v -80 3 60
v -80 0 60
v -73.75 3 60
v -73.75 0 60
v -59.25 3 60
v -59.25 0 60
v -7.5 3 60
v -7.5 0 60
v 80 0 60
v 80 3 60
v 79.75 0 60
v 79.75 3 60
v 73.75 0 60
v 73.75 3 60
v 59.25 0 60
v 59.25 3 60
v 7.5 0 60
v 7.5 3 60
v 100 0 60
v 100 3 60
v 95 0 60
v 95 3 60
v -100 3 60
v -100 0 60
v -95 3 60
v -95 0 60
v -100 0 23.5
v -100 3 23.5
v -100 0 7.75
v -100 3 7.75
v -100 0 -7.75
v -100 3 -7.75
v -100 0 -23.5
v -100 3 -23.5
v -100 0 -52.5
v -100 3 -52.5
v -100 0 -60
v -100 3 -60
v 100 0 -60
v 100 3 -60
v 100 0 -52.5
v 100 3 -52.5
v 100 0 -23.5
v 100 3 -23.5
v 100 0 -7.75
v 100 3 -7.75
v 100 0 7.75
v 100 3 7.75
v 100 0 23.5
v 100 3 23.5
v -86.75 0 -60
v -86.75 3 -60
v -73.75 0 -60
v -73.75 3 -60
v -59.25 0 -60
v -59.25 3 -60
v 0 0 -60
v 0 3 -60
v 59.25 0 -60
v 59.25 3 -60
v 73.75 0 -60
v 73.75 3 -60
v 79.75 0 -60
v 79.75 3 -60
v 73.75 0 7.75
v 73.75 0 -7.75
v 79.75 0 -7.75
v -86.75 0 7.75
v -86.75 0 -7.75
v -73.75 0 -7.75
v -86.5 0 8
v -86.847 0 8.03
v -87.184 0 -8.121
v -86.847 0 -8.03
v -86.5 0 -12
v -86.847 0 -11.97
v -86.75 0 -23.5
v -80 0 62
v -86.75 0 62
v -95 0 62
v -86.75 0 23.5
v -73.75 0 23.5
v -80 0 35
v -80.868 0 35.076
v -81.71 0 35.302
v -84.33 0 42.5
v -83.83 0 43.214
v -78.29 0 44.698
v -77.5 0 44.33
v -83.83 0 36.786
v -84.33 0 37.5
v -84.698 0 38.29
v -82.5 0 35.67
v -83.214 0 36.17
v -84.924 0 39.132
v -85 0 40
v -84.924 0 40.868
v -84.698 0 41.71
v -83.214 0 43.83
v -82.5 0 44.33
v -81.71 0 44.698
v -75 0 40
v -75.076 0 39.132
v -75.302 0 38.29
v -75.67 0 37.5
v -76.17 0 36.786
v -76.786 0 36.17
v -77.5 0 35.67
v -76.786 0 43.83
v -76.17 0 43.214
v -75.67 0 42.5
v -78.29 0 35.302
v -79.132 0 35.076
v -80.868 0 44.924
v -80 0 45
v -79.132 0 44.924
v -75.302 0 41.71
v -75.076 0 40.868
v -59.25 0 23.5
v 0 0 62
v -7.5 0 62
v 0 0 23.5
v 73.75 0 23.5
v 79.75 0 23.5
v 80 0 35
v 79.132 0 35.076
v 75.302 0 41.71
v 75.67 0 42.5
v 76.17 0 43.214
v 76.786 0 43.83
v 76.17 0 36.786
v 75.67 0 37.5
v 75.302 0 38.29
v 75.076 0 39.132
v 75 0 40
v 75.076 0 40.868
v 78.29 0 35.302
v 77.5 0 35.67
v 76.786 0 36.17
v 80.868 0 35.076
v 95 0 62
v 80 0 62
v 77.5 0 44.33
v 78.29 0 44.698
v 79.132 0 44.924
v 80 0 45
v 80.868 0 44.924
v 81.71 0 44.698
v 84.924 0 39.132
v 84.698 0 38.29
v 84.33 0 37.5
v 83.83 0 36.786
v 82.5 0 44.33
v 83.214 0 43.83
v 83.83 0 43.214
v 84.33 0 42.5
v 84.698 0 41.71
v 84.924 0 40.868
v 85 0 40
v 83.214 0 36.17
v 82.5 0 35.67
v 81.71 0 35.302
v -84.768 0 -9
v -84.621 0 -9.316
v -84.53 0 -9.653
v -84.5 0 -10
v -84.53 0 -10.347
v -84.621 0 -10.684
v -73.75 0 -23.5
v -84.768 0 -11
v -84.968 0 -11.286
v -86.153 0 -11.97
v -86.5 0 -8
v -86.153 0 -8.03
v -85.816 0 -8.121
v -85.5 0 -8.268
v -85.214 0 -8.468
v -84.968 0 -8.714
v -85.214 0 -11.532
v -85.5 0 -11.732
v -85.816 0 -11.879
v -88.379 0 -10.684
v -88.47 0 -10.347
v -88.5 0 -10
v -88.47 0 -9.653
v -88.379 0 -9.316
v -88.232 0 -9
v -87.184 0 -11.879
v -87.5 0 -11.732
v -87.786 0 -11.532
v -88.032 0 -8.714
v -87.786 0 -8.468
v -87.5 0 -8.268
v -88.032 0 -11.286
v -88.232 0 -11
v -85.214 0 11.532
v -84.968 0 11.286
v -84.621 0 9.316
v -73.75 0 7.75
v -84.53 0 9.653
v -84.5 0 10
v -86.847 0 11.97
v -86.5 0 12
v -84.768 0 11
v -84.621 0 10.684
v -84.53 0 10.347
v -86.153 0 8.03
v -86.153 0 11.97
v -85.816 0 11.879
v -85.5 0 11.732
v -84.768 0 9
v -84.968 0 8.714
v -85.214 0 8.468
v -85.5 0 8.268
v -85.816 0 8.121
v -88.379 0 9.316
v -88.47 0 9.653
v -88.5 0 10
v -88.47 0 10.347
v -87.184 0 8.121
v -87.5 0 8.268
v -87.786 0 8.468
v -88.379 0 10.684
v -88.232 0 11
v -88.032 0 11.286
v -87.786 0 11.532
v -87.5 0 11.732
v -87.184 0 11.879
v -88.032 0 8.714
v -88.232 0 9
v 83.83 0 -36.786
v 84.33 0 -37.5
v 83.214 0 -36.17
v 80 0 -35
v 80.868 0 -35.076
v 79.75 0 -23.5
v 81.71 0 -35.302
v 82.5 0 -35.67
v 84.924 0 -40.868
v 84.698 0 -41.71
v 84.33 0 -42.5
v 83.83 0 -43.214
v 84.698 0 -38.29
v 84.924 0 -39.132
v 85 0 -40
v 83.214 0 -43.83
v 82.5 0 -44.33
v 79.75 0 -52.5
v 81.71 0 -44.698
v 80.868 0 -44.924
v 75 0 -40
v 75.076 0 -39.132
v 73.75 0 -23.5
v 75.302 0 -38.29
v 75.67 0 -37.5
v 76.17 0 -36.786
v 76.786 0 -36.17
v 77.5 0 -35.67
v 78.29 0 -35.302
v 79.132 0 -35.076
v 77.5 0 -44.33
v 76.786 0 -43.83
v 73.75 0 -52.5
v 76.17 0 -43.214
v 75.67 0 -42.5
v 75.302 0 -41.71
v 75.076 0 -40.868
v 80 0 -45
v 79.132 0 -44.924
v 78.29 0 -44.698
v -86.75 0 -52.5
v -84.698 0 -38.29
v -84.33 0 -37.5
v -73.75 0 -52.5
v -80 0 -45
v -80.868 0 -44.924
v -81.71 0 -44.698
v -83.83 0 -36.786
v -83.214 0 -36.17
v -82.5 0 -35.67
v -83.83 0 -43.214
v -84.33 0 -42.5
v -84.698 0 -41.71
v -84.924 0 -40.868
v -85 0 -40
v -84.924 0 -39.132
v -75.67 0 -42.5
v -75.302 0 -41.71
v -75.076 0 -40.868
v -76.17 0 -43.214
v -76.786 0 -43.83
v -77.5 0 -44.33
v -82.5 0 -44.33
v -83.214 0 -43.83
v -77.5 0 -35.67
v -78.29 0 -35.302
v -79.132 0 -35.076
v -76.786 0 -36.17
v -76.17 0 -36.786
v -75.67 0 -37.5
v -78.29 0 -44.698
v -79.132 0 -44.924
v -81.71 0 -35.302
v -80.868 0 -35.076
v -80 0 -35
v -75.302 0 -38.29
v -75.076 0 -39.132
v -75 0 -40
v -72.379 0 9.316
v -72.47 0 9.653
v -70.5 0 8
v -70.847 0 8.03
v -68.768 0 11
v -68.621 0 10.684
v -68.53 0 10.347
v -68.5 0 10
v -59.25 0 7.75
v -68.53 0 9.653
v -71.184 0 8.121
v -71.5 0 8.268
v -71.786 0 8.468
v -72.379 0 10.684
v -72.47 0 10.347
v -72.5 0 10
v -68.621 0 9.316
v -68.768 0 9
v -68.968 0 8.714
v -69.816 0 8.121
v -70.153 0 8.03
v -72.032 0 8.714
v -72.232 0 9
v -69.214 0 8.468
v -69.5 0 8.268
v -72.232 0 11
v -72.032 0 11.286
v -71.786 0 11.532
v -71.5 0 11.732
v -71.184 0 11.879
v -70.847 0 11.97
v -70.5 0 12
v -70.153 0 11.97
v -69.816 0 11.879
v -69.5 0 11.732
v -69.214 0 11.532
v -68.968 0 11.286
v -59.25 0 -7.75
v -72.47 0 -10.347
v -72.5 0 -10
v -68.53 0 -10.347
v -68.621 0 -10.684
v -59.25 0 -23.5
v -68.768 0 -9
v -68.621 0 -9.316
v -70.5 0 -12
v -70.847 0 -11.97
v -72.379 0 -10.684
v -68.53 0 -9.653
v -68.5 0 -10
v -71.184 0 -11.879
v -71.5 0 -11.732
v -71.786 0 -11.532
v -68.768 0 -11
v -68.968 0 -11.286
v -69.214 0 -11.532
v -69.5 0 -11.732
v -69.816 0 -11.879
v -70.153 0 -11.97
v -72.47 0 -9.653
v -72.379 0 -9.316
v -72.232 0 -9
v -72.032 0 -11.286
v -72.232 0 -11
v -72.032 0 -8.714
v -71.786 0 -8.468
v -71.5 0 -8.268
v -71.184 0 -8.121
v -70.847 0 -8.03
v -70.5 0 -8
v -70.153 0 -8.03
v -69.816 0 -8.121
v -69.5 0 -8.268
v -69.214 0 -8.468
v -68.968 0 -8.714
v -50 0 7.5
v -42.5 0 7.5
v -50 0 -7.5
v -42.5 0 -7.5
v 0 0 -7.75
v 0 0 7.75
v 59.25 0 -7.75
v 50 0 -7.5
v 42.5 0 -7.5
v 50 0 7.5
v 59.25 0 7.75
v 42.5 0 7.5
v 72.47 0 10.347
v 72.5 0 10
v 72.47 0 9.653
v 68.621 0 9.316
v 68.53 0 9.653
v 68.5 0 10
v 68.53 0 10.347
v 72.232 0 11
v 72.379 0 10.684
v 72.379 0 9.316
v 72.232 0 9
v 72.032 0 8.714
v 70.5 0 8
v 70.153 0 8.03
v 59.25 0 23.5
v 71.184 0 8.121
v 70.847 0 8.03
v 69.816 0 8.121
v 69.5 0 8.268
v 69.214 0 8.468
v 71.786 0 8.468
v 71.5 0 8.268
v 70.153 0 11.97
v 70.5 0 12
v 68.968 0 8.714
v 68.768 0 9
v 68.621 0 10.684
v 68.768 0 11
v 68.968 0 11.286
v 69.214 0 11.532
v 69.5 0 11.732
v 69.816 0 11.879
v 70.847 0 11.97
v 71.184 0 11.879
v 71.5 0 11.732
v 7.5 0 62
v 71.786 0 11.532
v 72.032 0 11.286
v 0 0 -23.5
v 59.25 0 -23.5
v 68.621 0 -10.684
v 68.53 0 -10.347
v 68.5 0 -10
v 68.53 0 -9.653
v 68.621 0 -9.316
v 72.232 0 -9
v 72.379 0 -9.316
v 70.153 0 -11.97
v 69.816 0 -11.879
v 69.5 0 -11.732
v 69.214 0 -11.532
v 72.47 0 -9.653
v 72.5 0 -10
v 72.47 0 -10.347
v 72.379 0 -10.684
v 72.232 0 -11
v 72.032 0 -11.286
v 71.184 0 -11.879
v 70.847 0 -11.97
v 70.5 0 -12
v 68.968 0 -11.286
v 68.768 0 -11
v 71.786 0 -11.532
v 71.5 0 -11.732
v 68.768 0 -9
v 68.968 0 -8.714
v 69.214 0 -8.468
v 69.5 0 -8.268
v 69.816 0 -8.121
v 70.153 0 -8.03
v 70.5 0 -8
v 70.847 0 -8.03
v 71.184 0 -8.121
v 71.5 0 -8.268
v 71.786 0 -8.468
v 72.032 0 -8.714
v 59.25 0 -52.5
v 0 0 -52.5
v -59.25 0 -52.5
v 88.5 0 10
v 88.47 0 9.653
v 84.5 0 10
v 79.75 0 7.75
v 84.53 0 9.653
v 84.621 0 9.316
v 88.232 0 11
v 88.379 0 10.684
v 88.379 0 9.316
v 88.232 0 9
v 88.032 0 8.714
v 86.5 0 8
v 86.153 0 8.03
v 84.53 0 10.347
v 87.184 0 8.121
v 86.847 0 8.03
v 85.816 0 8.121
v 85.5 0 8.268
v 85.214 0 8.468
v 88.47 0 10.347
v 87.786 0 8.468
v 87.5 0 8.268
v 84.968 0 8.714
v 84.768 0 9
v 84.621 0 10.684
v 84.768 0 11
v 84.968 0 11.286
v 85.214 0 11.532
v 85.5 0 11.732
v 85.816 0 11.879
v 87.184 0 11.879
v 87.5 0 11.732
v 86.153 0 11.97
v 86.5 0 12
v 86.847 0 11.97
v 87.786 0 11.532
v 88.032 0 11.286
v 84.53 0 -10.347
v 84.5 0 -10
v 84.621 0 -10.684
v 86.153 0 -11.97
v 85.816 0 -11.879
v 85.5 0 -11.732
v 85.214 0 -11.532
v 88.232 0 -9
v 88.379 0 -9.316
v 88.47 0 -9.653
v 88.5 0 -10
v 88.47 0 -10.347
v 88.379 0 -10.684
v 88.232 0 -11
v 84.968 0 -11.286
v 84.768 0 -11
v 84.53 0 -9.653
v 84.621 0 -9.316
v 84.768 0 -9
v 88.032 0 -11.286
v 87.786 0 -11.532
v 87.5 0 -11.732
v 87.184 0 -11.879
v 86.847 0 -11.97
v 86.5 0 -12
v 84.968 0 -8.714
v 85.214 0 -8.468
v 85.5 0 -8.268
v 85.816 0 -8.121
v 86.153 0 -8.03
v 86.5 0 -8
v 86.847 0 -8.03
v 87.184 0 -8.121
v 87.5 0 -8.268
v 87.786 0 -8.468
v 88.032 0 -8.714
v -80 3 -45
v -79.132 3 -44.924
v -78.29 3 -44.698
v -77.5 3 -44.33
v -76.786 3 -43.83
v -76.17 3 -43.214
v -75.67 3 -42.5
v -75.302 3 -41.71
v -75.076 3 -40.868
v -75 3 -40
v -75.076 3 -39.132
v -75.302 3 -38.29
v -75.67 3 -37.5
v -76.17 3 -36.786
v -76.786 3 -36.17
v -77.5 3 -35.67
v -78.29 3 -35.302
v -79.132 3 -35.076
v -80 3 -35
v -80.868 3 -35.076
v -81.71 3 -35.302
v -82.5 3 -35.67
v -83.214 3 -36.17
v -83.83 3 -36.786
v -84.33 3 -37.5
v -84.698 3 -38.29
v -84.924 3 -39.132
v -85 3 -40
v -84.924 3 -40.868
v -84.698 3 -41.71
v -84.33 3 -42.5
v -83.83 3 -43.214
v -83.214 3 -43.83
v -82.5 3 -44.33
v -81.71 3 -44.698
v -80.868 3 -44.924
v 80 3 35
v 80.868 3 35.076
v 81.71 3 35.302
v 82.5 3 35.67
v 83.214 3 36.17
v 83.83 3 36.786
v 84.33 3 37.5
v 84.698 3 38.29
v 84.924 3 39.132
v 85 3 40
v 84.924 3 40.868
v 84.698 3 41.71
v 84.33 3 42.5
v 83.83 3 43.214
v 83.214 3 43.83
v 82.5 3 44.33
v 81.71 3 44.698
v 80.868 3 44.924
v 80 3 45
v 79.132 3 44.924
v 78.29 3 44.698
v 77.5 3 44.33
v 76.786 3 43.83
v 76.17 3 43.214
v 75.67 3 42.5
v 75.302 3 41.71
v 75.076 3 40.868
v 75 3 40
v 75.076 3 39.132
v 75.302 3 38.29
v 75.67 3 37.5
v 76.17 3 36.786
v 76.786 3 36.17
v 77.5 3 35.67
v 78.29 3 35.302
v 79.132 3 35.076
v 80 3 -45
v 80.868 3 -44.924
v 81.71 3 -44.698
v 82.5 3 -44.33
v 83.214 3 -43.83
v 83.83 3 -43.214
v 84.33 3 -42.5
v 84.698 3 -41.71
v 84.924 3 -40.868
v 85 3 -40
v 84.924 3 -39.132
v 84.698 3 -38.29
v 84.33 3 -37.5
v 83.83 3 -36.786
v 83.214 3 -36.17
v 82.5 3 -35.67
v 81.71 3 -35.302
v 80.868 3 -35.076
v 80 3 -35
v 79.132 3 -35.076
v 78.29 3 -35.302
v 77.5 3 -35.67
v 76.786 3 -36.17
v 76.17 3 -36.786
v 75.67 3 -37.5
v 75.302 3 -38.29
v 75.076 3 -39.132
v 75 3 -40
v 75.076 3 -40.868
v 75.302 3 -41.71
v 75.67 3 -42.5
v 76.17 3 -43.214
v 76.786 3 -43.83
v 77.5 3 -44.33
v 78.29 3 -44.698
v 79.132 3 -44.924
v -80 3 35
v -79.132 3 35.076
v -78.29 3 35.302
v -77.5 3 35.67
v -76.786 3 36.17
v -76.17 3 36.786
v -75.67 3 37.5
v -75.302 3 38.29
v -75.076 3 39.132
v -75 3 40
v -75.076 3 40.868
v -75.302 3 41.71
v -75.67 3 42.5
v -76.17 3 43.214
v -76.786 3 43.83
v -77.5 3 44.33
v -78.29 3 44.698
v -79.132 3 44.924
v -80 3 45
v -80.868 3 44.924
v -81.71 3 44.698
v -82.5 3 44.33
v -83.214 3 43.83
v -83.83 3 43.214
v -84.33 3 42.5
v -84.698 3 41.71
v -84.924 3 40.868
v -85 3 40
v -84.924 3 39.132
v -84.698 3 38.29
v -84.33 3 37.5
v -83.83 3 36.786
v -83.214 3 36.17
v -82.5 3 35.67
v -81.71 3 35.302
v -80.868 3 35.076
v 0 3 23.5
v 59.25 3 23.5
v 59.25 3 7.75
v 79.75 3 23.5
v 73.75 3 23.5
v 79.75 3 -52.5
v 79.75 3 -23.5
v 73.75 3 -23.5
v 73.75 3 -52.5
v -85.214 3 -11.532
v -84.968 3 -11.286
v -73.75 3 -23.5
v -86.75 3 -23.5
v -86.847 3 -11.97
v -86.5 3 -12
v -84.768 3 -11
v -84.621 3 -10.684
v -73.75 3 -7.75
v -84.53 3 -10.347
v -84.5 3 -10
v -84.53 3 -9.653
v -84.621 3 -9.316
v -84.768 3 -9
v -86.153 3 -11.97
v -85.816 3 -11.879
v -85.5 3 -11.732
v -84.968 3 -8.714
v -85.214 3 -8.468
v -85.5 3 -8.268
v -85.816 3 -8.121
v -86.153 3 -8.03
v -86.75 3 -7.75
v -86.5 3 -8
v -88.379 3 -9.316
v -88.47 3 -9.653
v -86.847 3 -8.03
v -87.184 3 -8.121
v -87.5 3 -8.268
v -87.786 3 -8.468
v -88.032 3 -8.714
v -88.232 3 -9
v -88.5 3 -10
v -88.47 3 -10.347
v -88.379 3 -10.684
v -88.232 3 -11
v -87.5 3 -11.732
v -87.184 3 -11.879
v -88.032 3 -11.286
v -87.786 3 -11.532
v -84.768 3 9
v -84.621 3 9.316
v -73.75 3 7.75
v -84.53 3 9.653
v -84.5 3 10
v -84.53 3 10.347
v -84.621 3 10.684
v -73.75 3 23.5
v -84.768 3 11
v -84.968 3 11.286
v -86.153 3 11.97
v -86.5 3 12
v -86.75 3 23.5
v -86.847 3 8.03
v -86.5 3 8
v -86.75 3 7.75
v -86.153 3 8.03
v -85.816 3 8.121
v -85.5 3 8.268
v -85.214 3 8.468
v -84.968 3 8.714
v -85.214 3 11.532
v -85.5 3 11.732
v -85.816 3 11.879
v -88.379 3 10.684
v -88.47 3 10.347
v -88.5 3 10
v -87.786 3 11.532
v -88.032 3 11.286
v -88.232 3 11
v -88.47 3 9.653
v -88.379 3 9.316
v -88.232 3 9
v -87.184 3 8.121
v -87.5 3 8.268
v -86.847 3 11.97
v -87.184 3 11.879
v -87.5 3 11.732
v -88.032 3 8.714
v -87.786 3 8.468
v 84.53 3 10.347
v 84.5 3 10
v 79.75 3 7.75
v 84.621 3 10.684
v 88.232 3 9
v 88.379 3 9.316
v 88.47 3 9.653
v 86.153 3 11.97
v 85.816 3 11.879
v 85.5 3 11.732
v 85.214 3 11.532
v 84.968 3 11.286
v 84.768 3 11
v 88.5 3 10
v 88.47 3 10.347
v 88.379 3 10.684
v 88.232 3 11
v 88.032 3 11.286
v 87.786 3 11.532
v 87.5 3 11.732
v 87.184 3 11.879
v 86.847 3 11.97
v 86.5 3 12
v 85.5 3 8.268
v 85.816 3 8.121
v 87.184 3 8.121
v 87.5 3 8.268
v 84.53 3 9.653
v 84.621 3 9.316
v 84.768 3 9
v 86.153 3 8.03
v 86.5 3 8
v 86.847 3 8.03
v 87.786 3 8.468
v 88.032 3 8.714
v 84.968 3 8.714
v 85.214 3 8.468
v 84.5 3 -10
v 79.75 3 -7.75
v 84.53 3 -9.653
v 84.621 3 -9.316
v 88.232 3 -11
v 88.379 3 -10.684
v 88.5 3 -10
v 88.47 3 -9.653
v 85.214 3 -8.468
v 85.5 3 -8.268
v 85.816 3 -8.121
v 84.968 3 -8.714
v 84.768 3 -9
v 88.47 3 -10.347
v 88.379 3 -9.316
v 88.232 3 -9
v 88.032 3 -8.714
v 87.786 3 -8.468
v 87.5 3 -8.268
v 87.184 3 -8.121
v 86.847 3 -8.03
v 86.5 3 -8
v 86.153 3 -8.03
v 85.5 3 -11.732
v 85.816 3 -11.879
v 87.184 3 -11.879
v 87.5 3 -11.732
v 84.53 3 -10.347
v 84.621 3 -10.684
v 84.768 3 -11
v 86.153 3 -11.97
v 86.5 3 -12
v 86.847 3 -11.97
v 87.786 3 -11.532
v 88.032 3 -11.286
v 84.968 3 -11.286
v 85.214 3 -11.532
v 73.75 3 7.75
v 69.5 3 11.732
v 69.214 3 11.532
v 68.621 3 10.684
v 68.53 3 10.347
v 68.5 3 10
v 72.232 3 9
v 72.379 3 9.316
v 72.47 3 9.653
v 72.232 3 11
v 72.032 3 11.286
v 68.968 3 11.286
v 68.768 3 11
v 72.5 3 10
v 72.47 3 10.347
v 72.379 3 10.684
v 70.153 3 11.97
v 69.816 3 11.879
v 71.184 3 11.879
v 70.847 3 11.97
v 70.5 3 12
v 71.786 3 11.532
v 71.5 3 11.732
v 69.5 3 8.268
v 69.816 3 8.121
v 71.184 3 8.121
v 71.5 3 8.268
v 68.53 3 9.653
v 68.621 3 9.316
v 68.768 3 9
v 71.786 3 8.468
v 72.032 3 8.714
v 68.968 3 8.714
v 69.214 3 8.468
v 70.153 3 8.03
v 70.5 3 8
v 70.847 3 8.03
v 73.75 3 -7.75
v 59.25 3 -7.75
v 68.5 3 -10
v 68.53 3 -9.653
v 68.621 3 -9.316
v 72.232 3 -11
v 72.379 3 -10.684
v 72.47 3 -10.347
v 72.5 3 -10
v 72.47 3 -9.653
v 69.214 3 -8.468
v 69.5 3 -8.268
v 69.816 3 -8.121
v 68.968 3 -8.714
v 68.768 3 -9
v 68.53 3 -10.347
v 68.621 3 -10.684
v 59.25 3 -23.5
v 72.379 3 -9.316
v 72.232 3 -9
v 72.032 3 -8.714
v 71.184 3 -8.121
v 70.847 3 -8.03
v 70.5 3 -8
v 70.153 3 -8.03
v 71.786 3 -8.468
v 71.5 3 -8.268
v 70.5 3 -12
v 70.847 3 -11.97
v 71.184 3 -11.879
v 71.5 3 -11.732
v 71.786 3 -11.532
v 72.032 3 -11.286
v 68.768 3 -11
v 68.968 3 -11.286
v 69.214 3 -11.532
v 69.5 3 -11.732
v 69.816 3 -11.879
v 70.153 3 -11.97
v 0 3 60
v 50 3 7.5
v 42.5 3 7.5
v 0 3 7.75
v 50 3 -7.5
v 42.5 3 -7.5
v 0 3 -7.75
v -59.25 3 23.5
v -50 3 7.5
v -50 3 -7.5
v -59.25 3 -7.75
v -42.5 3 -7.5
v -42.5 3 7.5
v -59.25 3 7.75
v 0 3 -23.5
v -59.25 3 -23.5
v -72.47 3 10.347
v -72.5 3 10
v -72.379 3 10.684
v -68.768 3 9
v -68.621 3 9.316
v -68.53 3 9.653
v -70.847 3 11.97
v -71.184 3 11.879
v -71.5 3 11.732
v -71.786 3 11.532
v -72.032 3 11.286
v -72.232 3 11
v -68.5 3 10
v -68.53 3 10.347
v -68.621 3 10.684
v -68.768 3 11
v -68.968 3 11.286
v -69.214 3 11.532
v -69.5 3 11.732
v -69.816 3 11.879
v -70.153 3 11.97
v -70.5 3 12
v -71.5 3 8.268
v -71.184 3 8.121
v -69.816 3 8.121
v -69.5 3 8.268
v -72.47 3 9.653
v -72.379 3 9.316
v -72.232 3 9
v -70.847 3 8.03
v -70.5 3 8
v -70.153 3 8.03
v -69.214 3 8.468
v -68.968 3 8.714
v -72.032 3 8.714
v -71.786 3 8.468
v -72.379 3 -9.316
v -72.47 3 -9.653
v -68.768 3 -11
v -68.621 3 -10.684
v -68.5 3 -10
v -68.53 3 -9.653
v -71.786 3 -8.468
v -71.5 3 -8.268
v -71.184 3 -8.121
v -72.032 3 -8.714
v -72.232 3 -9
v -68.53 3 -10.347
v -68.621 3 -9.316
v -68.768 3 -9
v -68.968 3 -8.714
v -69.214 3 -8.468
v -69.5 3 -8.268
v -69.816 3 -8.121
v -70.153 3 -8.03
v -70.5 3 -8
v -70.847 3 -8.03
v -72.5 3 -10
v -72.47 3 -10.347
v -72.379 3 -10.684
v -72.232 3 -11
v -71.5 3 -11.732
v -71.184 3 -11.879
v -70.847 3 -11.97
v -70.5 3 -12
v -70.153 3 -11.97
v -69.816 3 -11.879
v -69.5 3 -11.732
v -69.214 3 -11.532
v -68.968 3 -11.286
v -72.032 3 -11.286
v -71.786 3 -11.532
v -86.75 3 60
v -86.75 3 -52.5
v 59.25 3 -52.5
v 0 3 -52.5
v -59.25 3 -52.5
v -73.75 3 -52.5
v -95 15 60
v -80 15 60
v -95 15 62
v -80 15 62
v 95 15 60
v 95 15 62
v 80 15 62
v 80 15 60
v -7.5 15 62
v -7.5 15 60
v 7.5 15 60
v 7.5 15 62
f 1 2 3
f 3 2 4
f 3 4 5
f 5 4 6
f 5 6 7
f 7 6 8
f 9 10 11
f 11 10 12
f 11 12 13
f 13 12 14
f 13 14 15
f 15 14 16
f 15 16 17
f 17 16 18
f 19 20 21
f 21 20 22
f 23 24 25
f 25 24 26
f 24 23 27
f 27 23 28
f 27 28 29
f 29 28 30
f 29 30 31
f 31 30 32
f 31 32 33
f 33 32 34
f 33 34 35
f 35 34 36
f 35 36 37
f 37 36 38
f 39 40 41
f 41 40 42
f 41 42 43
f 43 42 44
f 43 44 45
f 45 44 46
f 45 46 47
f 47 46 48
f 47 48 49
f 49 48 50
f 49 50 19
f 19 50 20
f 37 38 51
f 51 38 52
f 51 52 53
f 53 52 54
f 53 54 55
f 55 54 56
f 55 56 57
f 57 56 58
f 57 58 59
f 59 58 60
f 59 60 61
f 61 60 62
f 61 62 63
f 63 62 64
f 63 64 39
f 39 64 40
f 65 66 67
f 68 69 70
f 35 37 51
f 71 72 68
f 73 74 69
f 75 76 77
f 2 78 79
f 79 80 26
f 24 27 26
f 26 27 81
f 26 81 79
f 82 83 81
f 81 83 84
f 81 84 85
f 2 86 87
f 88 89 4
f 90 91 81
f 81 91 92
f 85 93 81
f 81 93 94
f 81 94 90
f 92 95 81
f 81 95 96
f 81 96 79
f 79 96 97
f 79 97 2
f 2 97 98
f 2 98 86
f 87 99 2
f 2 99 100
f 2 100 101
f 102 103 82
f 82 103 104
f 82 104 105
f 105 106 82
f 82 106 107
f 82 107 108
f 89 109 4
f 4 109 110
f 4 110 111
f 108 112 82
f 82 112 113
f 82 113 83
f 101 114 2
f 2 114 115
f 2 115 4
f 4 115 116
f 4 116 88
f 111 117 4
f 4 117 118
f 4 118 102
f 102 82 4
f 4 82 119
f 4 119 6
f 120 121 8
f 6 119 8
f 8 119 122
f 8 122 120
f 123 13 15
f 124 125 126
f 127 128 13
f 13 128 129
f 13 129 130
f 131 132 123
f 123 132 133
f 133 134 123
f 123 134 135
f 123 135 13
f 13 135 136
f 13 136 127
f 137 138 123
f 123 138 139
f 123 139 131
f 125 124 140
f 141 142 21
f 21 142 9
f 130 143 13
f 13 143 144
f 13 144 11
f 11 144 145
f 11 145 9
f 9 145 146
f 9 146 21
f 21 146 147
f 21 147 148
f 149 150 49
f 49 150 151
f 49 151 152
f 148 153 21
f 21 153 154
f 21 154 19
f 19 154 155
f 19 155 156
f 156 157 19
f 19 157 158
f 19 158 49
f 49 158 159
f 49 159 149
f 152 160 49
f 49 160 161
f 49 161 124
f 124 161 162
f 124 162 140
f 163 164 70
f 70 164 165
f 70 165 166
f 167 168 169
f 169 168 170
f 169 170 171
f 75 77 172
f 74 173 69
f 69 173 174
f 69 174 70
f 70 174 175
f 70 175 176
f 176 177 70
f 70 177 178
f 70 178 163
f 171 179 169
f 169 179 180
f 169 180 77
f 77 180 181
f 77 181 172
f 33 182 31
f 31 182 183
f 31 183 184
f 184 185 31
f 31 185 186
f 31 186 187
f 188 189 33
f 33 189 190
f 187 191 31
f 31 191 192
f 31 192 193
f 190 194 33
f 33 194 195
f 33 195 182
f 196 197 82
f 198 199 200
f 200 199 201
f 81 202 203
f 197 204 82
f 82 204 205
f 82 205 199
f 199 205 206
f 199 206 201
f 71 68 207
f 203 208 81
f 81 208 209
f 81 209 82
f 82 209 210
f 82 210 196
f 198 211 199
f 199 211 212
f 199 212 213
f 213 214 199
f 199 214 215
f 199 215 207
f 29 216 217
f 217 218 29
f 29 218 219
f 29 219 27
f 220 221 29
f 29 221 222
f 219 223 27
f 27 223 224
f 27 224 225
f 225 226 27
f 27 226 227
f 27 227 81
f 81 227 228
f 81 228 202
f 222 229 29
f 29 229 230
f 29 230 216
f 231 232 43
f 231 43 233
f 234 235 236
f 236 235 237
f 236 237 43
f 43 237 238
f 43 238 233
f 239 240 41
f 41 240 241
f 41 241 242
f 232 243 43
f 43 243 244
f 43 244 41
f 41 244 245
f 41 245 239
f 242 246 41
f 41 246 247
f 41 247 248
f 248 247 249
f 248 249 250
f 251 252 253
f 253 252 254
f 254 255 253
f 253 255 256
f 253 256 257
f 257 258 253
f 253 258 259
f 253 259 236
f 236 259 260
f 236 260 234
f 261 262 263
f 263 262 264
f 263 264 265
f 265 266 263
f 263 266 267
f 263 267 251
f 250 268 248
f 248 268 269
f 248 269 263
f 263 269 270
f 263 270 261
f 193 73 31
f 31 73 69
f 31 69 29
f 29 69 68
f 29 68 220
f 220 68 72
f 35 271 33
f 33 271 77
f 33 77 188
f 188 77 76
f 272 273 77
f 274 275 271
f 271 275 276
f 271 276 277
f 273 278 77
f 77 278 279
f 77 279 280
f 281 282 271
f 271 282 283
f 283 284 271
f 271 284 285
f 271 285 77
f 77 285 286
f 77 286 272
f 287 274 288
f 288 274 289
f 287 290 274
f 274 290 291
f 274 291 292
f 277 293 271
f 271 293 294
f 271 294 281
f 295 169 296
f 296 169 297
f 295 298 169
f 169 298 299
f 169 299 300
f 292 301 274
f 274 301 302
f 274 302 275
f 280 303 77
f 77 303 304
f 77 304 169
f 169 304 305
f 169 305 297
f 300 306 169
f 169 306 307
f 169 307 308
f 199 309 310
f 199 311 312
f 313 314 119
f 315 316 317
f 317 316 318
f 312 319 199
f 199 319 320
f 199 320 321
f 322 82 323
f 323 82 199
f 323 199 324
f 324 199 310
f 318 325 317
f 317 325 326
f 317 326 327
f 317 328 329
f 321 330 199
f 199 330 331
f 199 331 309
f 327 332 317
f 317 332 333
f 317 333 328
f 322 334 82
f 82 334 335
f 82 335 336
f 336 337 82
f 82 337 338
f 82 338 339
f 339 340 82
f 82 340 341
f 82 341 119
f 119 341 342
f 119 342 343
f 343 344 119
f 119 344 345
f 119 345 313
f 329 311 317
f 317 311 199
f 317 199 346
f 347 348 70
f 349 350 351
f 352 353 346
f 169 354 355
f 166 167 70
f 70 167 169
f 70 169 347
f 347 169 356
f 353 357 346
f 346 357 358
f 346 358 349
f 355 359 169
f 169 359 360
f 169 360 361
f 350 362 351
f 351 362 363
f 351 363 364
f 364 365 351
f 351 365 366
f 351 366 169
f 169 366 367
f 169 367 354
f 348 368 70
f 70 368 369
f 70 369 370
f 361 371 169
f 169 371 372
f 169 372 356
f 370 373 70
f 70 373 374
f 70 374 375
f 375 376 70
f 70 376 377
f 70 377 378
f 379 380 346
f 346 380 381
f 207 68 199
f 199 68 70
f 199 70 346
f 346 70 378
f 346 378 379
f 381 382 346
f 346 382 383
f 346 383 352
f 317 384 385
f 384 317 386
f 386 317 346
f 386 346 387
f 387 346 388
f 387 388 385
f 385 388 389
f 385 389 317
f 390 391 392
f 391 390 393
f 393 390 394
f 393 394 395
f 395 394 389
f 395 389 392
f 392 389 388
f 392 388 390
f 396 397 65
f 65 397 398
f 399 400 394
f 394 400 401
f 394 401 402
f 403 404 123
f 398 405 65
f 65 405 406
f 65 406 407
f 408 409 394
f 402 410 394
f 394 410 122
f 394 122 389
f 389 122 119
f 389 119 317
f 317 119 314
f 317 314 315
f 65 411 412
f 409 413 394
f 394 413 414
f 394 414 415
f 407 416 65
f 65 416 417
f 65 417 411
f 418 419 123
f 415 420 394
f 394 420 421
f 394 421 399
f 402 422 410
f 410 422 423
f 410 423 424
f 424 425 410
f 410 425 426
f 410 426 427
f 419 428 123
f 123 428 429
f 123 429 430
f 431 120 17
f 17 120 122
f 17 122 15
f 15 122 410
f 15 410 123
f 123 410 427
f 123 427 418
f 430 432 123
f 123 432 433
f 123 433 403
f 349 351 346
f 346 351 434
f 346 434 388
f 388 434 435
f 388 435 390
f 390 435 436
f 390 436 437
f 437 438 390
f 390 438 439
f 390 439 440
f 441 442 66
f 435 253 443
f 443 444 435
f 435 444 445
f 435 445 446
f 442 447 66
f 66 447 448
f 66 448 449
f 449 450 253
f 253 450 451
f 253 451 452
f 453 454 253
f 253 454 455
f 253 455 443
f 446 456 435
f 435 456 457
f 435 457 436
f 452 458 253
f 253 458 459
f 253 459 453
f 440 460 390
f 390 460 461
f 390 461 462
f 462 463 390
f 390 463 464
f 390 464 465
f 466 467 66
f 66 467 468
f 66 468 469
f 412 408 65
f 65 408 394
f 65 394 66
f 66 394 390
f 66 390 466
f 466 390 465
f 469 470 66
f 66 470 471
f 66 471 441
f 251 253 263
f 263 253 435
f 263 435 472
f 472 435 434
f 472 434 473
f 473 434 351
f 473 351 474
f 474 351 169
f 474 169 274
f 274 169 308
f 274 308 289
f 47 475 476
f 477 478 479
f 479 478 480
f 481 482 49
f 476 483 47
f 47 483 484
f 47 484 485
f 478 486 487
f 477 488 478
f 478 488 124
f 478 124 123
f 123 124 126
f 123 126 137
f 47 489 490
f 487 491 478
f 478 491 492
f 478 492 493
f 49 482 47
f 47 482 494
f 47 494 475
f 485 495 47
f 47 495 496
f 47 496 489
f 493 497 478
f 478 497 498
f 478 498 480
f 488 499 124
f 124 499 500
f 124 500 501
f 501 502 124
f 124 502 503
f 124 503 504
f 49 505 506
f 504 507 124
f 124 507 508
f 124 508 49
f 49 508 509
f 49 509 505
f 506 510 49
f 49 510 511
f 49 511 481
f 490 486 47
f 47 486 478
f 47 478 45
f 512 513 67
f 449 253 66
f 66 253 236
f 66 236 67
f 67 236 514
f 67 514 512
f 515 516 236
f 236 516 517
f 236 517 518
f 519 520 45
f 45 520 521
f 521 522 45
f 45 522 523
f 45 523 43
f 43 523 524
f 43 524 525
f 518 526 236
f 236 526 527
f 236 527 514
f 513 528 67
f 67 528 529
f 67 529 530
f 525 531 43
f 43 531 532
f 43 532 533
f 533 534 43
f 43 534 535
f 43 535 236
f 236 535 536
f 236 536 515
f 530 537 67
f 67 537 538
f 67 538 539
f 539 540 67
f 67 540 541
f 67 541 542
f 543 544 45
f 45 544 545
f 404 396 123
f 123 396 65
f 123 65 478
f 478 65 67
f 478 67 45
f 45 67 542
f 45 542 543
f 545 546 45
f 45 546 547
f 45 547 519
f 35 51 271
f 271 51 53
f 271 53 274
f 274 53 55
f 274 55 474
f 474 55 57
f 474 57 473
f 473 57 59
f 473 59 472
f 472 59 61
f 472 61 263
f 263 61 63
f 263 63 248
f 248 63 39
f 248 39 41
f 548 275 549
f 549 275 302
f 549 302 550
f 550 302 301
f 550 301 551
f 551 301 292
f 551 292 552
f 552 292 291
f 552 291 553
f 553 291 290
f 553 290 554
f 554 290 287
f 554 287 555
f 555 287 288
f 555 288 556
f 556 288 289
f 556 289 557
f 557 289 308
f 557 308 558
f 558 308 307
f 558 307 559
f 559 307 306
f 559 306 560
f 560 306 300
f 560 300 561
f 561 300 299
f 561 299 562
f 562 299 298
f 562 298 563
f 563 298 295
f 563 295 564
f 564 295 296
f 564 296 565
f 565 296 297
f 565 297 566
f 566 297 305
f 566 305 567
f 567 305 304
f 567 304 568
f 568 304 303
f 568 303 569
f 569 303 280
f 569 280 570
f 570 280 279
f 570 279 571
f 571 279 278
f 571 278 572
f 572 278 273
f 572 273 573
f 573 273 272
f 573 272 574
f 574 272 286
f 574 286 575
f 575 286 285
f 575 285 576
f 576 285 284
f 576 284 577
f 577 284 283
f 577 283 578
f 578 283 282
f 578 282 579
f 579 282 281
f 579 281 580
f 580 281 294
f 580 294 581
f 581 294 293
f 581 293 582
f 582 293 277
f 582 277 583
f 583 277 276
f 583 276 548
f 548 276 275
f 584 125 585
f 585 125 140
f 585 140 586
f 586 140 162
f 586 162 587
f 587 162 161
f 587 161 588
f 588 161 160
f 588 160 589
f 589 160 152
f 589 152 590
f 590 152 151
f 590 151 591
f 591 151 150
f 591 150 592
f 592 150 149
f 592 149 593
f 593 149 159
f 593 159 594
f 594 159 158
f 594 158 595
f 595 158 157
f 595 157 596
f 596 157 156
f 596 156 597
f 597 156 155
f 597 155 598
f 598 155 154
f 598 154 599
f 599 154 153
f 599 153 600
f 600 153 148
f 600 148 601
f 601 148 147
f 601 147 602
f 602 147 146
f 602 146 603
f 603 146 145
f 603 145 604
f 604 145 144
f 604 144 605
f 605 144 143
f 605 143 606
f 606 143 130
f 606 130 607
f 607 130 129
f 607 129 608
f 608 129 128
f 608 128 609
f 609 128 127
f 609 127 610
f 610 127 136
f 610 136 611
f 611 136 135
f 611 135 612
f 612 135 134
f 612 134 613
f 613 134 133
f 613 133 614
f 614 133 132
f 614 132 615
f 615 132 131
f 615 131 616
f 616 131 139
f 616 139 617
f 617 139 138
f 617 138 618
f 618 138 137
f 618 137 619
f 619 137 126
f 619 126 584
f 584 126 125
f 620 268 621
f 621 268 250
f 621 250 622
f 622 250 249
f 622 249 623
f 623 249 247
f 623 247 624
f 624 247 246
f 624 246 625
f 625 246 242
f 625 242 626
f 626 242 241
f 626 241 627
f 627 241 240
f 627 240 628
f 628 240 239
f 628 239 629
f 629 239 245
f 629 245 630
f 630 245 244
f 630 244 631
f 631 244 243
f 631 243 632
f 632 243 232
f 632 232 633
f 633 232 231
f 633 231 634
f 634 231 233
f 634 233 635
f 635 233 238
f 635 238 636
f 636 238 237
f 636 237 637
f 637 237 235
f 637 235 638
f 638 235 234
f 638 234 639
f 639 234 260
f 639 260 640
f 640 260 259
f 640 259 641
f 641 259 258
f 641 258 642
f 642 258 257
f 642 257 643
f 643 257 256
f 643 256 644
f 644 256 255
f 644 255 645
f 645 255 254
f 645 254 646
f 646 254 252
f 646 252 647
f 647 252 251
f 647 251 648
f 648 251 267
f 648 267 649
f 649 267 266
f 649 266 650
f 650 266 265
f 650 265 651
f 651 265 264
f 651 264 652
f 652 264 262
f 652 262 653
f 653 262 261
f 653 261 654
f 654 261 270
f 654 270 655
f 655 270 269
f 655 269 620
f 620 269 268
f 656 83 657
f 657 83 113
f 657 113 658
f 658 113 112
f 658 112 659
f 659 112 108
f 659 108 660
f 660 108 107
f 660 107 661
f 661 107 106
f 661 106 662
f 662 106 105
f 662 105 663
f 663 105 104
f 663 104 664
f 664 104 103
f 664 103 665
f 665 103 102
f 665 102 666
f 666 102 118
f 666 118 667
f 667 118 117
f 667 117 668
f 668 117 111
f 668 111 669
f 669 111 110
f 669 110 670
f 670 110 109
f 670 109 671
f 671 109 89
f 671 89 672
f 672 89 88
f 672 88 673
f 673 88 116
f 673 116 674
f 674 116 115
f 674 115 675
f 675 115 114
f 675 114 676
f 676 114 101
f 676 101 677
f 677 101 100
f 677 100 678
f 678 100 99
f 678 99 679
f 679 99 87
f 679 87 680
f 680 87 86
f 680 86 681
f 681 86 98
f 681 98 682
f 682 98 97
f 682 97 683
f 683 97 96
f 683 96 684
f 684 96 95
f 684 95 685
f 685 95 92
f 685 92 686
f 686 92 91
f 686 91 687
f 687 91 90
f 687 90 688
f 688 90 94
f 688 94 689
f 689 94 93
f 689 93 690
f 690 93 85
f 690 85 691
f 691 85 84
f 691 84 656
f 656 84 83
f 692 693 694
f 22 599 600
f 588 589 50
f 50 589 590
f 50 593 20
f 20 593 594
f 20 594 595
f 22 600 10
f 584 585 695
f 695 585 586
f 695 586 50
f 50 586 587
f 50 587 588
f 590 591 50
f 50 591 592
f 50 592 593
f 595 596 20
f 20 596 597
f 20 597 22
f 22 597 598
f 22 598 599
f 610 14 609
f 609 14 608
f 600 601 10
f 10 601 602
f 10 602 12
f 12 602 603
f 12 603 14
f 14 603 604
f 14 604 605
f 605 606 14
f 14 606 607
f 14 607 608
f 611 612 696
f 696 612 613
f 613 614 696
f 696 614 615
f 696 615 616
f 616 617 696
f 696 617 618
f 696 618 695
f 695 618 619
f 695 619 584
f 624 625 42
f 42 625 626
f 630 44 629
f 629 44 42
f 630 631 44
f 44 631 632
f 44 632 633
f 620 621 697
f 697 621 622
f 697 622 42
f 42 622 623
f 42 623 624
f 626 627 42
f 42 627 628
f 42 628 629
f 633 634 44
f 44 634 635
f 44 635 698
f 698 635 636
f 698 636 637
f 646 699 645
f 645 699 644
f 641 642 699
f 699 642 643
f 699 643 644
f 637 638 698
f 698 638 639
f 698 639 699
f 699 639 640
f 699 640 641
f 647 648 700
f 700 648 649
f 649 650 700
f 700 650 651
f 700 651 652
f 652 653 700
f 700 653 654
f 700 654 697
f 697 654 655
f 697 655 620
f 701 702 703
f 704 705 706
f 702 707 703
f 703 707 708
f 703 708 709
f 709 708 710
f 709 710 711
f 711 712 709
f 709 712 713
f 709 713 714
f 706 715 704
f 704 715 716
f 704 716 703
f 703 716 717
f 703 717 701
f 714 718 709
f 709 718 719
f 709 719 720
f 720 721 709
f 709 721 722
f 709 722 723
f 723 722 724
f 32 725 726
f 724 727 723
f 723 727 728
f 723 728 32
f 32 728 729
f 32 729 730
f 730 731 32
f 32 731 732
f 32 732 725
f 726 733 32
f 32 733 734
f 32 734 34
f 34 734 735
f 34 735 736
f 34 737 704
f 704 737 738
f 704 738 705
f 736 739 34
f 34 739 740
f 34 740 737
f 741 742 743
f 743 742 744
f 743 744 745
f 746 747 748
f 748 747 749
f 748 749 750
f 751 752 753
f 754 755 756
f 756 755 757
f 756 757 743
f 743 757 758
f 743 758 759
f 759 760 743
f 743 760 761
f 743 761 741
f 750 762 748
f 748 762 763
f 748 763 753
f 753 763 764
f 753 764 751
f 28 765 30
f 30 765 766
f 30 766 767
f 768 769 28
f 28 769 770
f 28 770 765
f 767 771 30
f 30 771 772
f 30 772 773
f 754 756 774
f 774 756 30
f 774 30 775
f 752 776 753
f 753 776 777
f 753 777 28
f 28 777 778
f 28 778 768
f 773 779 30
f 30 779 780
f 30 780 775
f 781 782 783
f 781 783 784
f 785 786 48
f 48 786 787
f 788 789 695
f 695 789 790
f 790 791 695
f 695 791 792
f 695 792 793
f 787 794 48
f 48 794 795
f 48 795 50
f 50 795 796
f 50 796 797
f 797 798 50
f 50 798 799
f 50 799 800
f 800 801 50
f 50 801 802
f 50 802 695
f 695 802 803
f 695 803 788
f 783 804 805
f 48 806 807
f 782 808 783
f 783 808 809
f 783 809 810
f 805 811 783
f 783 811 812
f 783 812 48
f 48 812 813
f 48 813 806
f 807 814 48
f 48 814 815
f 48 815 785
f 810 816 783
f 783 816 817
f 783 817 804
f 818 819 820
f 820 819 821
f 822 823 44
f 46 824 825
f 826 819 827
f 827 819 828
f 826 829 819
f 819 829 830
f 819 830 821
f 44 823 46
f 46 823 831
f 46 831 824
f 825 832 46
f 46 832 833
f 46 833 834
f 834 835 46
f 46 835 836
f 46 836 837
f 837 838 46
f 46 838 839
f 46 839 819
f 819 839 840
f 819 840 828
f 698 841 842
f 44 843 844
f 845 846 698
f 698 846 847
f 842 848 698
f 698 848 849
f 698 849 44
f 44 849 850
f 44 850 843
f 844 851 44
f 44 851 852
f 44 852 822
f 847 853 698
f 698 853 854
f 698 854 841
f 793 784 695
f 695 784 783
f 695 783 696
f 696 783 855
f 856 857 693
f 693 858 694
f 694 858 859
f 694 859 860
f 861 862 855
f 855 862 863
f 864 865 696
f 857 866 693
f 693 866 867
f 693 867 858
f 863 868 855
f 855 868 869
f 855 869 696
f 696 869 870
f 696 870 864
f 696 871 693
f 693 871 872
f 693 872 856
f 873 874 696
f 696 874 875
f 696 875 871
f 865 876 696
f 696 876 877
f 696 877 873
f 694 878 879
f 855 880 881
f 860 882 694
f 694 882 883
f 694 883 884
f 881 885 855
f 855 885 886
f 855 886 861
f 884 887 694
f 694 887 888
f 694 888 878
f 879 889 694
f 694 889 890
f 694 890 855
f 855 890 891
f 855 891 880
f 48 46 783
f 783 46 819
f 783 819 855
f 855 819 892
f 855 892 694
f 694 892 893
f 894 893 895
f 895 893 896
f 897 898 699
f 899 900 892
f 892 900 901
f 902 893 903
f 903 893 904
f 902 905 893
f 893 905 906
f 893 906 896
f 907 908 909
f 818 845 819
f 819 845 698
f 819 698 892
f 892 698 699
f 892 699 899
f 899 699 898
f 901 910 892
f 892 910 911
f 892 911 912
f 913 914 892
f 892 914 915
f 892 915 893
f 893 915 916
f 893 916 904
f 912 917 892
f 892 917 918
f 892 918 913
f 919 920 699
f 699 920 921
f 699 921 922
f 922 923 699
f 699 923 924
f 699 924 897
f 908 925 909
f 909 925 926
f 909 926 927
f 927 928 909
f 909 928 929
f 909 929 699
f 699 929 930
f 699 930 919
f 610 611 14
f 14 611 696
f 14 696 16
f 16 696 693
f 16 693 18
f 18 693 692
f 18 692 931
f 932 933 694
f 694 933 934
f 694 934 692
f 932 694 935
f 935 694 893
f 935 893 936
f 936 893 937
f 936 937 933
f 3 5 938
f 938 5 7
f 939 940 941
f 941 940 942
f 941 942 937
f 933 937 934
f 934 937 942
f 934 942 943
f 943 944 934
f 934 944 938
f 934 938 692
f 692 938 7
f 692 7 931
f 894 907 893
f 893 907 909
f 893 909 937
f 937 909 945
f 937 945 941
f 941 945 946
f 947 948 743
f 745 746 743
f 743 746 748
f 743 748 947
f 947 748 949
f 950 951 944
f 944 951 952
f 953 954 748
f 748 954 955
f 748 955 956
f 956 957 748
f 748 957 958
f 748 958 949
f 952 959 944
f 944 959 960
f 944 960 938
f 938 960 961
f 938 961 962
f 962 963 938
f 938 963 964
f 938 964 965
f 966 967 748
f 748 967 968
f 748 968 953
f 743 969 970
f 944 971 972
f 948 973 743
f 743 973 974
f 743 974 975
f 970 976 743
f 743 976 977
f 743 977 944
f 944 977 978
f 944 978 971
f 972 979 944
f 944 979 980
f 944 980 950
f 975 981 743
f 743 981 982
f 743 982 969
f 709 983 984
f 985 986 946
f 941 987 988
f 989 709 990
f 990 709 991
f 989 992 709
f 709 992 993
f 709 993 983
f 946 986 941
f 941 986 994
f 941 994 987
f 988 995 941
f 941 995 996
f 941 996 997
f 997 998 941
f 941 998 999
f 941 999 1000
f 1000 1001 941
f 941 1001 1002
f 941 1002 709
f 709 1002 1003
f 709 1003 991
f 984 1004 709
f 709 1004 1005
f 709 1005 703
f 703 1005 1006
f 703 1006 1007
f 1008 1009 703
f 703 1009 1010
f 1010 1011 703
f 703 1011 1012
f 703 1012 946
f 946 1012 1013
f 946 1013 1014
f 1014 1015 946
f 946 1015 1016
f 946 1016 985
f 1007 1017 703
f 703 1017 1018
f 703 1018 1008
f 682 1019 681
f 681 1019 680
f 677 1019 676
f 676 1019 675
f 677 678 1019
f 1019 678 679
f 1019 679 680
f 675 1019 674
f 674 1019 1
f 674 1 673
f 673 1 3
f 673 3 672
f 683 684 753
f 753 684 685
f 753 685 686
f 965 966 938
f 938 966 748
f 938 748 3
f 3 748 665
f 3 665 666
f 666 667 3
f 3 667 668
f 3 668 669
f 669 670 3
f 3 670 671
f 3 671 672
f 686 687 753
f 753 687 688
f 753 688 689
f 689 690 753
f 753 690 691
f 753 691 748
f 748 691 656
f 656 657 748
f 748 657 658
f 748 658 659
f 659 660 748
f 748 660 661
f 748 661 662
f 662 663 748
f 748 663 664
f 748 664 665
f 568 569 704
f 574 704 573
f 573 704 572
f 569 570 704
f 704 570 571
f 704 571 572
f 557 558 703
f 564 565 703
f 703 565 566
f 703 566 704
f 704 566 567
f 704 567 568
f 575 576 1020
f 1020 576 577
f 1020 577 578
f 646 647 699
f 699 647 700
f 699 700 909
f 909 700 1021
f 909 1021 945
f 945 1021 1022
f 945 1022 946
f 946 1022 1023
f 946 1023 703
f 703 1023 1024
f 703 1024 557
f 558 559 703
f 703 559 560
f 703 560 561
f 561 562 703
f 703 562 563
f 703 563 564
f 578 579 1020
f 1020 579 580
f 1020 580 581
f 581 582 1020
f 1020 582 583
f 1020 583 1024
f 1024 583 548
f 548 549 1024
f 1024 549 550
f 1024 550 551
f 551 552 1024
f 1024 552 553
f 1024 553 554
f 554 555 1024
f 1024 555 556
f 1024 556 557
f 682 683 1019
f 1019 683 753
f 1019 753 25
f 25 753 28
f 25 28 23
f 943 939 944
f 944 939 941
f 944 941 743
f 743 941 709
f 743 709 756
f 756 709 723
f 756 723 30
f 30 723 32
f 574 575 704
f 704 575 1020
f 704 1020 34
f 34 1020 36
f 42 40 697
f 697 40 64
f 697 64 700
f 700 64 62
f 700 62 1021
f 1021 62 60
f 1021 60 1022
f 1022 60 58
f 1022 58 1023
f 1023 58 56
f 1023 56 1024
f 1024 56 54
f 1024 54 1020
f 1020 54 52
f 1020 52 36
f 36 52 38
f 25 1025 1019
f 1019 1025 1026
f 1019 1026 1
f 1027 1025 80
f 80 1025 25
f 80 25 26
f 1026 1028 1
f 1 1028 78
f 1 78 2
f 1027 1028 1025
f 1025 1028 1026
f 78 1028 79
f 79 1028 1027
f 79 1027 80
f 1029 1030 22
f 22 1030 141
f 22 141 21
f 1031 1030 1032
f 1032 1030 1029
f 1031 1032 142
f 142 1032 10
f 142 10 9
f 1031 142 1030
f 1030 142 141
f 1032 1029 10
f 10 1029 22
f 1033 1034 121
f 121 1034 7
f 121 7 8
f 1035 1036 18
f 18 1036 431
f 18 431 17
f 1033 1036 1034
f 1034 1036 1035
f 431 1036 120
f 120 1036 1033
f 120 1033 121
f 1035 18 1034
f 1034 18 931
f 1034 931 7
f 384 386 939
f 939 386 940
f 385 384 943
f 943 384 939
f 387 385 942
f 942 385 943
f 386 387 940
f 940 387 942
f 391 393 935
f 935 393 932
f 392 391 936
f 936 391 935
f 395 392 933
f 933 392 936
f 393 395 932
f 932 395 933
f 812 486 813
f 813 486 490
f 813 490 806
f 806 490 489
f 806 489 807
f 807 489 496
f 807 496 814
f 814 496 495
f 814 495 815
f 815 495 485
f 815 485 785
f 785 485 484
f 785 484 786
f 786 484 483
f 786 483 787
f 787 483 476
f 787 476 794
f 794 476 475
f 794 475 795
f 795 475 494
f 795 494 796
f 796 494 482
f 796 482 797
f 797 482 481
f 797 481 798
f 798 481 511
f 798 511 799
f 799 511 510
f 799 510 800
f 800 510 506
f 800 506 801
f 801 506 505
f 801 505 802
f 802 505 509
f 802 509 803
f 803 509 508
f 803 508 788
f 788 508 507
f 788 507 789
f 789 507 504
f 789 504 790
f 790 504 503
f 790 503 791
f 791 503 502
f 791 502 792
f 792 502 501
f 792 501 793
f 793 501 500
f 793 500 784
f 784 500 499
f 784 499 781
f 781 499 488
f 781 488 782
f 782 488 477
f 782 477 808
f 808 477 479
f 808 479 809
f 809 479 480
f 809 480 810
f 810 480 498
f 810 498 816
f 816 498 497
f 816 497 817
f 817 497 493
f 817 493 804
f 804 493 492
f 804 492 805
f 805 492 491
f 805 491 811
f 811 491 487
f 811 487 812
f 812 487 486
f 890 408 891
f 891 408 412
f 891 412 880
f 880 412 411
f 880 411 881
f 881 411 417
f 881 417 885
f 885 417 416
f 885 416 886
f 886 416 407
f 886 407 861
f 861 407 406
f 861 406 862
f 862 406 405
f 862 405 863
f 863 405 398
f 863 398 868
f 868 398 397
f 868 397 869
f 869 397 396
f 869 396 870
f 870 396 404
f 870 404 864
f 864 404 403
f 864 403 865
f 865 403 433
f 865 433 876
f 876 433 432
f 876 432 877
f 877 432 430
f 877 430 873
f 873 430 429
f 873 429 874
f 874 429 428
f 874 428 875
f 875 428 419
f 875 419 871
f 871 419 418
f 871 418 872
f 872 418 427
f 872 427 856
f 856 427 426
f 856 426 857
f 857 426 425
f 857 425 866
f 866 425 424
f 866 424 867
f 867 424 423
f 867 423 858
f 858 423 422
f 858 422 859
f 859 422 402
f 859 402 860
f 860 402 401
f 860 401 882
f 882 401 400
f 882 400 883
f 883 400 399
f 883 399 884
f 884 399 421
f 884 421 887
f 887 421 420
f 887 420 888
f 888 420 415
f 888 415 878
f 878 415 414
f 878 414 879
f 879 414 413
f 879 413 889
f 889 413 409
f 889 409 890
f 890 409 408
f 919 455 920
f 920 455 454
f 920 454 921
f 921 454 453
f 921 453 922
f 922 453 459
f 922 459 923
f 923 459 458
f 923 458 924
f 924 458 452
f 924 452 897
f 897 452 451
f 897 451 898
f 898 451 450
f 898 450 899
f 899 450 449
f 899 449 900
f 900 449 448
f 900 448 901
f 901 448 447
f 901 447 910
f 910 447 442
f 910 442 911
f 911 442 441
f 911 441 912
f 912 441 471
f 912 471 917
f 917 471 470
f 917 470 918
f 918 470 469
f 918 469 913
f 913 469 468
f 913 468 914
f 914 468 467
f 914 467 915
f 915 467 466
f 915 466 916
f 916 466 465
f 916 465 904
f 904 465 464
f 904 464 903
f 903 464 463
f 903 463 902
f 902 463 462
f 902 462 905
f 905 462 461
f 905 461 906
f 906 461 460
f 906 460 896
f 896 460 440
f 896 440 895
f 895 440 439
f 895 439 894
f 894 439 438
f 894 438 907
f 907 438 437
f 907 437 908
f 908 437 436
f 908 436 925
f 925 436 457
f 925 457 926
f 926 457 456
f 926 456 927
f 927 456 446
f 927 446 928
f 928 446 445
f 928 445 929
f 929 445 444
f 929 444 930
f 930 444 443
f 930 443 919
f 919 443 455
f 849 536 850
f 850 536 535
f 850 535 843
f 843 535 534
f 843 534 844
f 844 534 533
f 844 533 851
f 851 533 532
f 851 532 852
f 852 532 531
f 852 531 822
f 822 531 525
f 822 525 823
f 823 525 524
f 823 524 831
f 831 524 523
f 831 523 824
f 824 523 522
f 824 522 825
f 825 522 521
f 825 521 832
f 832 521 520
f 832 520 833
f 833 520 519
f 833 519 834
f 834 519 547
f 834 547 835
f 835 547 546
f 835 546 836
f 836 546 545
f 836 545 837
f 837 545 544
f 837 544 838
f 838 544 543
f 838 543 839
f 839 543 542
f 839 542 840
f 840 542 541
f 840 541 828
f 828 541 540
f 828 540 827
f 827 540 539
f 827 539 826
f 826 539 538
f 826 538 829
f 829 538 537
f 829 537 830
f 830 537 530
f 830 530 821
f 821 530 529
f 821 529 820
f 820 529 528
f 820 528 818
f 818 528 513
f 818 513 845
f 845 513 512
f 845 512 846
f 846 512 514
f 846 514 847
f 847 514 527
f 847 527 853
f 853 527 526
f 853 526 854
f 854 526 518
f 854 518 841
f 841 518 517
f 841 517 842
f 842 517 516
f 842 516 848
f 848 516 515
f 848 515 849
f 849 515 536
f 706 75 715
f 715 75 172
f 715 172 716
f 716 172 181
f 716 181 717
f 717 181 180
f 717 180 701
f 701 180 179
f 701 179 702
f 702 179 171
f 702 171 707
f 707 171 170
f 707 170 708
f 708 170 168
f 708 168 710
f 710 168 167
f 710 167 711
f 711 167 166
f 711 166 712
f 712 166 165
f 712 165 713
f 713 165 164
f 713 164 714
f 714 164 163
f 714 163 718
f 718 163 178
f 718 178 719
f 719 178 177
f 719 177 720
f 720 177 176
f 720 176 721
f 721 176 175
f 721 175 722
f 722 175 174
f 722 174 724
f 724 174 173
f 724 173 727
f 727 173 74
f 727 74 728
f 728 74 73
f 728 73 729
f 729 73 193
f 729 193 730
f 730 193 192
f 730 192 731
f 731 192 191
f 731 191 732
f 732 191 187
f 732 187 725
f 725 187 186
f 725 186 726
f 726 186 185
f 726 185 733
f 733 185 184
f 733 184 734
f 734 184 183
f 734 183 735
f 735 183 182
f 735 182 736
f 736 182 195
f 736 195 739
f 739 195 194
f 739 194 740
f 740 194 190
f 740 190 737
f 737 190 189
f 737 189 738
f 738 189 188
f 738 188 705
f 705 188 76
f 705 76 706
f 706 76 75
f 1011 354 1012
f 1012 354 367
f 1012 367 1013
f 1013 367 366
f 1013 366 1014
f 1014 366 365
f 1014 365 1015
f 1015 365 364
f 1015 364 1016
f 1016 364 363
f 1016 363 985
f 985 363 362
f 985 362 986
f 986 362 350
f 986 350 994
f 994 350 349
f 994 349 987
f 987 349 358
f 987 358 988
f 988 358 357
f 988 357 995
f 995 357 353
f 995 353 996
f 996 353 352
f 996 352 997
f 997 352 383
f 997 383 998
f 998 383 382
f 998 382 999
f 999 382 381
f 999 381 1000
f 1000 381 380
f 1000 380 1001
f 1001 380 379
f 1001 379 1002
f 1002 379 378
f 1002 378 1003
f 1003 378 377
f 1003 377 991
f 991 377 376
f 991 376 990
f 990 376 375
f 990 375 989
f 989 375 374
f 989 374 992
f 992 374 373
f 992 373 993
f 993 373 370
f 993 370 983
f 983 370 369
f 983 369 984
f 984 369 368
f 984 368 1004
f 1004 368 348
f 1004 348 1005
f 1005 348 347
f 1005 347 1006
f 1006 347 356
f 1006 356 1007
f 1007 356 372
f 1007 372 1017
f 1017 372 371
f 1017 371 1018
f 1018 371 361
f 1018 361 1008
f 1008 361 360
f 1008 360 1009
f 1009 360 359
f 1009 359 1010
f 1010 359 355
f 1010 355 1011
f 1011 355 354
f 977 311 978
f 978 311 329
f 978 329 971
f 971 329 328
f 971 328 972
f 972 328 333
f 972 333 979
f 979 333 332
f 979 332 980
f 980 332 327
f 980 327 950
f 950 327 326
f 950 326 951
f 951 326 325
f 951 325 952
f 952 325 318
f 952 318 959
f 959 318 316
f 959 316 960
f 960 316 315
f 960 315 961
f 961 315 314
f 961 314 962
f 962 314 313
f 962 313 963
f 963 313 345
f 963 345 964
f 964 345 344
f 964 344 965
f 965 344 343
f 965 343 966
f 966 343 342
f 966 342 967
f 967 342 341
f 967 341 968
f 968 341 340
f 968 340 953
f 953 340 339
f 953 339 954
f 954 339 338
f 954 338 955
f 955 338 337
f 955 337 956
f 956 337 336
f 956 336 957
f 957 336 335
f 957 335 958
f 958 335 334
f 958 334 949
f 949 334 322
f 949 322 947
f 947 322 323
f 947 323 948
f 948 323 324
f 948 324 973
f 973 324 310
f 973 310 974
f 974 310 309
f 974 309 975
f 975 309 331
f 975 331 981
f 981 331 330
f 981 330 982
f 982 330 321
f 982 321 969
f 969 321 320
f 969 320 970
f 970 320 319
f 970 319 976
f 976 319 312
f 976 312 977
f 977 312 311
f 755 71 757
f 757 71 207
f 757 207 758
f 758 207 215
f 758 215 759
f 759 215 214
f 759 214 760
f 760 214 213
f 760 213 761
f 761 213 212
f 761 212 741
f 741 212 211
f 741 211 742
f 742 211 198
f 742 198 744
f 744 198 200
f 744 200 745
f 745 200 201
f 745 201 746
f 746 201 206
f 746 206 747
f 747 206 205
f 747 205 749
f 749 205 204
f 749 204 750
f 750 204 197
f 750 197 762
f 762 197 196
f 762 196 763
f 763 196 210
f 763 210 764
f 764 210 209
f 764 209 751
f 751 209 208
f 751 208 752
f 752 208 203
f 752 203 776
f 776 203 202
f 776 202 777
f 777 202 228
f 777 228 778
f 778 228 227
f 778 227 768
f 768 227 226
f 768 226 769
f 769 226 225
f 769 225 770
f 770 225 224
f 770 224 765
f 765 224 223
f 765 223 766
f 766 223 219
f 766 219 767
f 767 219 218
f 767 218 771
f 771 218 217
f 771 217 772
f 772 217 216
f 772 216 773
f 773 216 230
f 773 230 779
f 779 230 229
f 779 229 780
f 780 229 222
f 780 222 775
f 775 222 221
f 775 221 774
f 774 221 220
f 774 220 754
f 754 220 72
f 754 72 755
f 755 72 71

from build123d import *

# Parameters (mm, degrees)
SKETCH1_W           = 200
SKETCH1_H           = 120
BOSS_EXTRUDE3_DEPTH = 1
SKETCH3_W           = 200
SKETCH3_H           = 120
SKETCH3_R           = 5
BOSS_EXTRUDE4_DEPTH = 2
SKETCH10_W          = 15
SKETCH10_H          = 15
BOSS_EXTRUDE6_DEPTH = 2
SKETCH12_R          = 2
SKETCH12_W          = 7.5
SKETCH12_H          = 15
CUT_EXTRUDE1_DEPTH  = 119.612815496
CUT_EXTRUDE2_START  = -10
SKETCH8_R           = 5
CUT_EXTRUDE2_DEPTH  = 10


with BuildPart() as part:
    # Sketch1 → Boss-Extrude3 (new body)
    with BuildSketch(Plane(origin=(0, 0, 0), x_dir=(1, 0, 0), z_dir=(0, 1, 0))):
        Rectangle(SKETCH1_W, SKETCH1_H)
    extrude(amount=BOSS_EXTRUDE3_DEPTH)

    # Sketch3 → Boss-Extrude4 (add)
    # profile 1 of 4: a face of its own
    with BuildSketch(Plane(origin=(0, 1, 0), x_dir=(1, 0, 0), z_dir=(0, 1, 0))):
        Rectangle(SKETCH3_W, SKETCH3_H)
        with Locations(Location((-80, -40, 0), (0, 0, 270))):
            Circle(SKETCH3_R, mode=Mode.SUBTRACT)
        with Locations(Location((80, -40, 0), (0, 0, 270))):
            Circle(SKETCH3_R, mode=Mode.SUBTRACT)
        with Locations(Location((-80, 40, 0), (0, 0, 270))):
            Circle(SKETCH3_R, mode=Mode.SUBTRACT)
        with Locations(Location((80, 40, 0), (0, 0, 270))):
            Circle(SKETCH3_R, mode=Mode.SUBTRACT)
    # profile 2 of 4: a face of its own
    with BuildSketch(Plane(origin=(0, 1, 0), x_dir=(1, 0, 0), z_dir=(0, 1, 0))):
        Rectangle(SKETCH3_W, SKETCH3_H)
        with Locations(Location((-80, -40, 0), (0, 0, 270))):
            Circle(SKETCH3_R, mode=Mode.SUBTRACT)
        with Locations(Location((80, -40, 0), (0, 0, 270))):
            Circle(SKETCH3_R, mode=Mode.SUBTRACT)
        with Locations(Location((-80, 40, 0), (0, 0, 270))):
            Circle(SKETCH3_R, mode=Mode.SUBTRACT)
        with Locations(Location((80, 40, 0), (0, 0, 270))):
            Circle(SKETCH3_R, mode=Mode.SUBTRACT)
    # profile 3 of 4: a face of its own
    with BuildSketch(Plane(origin=(0, 1, 0), x_dir=(1, 0, 0), z_dir=(0, 1, 0))):
        Rectangle(SKETCH3_W, SKETCH3_H)
        with Locations(Location((-80, -40, 0), (0, 0, 270))):
            Circle(SKETCH3_R, mode=Mode.SUBTRACT)
        with Locations(Location((80, -40, 0), (0, 0, 270))):
            Circle(SKETCH3_R, mode=Mode.SUBTRACT)
        with Locations(Location((-80, 40, 0), (0, 0, 270))):
            Circle(SKETCH3_R, mode=Mode.SUBTRACT)
        with Locations(Location((80, 40, 0), (0, 0, 270))):
            Circle(SKETCH3_R, mode=Mode.SUBTRACT)
    # profile 4 of 4: a face of its own
    with BuildSketch(Plane(origin=(0, 1, 0), x_dir=(1, 0, 0), z_dir=(0, 1, 0))):
        Rectangle(SKETCH3_W, SKETCH3_H)
        with Locations(Location((-80, -40, 0), (0, 0, 270))):
            Circle(SKETCH3_R, mode=Mode.SUBTRACT)
        with Locations(Location((80, -40, 0), (0, 0, 270))):
            Circle(SKETCH3_R, mode=Mode.SUBTRACT)
        with Locations(Location((-80, 40, 0), (0, 0, 270))):
            Circle(SKETCH3_R, mode=Mode.SUBTRACT)
        with Locations(Location((80, 40, 0), (0, 0, 270))):
            Circle(SKETCH3_R, mode=Mode.SUBTRACT)
    extrude(amount=BOSS_EXTRUDE4_DEPTH)

    # Sketch10 → Boss-Extrude6 (add)
    with BuildSketch(Plane.XY.offset(60)):
        with Locations((-87.5, 7.5)):
            Rectangle(SKETCH10_W, SKETCH10_H)
        with Locations((87.5, 7.5)):
            Rectangle(SKETCH10_W, SKETCH10_H)
        with Locations((0, 7.5)):
            Rectangle(SKETCH10_W, SKETCH10_H)
    extrude(amount=BOSS_EXTRUDE6_DEPTH)

    # Sketch12 → Cut-Extrude1 (cut, through all)
    with BuildSketch(Plane.XZ):
        with Locations(Location((-86.5, 10, 0), (0, 0, 270))):
            Circle(SKETCH12_R)
        with Locations(Location((-70.5, 10, 0), (0, 0, 270))):
            Circle(SKETCH12_R)
        with Locations(Location((-70.5, -10, 0), (0, 0, 90))):
            Circle(SKETCH12_R)
        with Locations(Location((-86.5, -10, 0), (0, 0, 90))):
            Circle(SKETCH12_R)
        with Locations(Location((86.5, -10, 0), (0, 0, 270))):
            Circle(SKETCH12_R)
        with Locations(Location((70.5, -10, 0), (0, 0, 270))):
            Circle(SKETCH12_R)
        with Locations(Location((70.5, 10, 0), (0, 0, 90))):
            Circle(SKETCH12_R)
        with Locations(Location((86.5, 10, 0), (0, 0, 90))):
            Circle(SKETCH12_R)
        with Locations((46.25, 0)):
            Rectangle(SKETCH12_W, SKETCH12_H)
        with Locations((-46.25, 0)):
            Rectangle(SKETCH12_W, SKETCH12_H)
    extrude(amount=-CUT_EXTRUDE1_DEPTH, mode=Mode.SUBTRACT)

    # Sketch8 → Cut-Extrude2 (cut)
    with BuildSketch(Plane(origin=(0, 3, 0), x_dir=(1, 0, 0), z_dir=(0, 1, 0)).offset(CUT_EXTRUDE2_START)):
        with Locations(Location((-80, 40, 0), (0, 0, 270))):
            Circle(SKETCH8_R)
        with Locations(Location((80, 40, 0), (0, 0, 270))):
            Circle(SKETCH8_R)
        with Locations(Location((80, -40, 0), (0, 0, 270))):
            Circle(SKETCH8_R)
        with Locations(Location((-80, -40, 0), (0, 0, 270))):
            Circle(SKETCH8_R)
    extrude(amount=CUT_EXTRUDE2_DEPTH, mode=Mode.SUBTRACT)


solid = part.part
